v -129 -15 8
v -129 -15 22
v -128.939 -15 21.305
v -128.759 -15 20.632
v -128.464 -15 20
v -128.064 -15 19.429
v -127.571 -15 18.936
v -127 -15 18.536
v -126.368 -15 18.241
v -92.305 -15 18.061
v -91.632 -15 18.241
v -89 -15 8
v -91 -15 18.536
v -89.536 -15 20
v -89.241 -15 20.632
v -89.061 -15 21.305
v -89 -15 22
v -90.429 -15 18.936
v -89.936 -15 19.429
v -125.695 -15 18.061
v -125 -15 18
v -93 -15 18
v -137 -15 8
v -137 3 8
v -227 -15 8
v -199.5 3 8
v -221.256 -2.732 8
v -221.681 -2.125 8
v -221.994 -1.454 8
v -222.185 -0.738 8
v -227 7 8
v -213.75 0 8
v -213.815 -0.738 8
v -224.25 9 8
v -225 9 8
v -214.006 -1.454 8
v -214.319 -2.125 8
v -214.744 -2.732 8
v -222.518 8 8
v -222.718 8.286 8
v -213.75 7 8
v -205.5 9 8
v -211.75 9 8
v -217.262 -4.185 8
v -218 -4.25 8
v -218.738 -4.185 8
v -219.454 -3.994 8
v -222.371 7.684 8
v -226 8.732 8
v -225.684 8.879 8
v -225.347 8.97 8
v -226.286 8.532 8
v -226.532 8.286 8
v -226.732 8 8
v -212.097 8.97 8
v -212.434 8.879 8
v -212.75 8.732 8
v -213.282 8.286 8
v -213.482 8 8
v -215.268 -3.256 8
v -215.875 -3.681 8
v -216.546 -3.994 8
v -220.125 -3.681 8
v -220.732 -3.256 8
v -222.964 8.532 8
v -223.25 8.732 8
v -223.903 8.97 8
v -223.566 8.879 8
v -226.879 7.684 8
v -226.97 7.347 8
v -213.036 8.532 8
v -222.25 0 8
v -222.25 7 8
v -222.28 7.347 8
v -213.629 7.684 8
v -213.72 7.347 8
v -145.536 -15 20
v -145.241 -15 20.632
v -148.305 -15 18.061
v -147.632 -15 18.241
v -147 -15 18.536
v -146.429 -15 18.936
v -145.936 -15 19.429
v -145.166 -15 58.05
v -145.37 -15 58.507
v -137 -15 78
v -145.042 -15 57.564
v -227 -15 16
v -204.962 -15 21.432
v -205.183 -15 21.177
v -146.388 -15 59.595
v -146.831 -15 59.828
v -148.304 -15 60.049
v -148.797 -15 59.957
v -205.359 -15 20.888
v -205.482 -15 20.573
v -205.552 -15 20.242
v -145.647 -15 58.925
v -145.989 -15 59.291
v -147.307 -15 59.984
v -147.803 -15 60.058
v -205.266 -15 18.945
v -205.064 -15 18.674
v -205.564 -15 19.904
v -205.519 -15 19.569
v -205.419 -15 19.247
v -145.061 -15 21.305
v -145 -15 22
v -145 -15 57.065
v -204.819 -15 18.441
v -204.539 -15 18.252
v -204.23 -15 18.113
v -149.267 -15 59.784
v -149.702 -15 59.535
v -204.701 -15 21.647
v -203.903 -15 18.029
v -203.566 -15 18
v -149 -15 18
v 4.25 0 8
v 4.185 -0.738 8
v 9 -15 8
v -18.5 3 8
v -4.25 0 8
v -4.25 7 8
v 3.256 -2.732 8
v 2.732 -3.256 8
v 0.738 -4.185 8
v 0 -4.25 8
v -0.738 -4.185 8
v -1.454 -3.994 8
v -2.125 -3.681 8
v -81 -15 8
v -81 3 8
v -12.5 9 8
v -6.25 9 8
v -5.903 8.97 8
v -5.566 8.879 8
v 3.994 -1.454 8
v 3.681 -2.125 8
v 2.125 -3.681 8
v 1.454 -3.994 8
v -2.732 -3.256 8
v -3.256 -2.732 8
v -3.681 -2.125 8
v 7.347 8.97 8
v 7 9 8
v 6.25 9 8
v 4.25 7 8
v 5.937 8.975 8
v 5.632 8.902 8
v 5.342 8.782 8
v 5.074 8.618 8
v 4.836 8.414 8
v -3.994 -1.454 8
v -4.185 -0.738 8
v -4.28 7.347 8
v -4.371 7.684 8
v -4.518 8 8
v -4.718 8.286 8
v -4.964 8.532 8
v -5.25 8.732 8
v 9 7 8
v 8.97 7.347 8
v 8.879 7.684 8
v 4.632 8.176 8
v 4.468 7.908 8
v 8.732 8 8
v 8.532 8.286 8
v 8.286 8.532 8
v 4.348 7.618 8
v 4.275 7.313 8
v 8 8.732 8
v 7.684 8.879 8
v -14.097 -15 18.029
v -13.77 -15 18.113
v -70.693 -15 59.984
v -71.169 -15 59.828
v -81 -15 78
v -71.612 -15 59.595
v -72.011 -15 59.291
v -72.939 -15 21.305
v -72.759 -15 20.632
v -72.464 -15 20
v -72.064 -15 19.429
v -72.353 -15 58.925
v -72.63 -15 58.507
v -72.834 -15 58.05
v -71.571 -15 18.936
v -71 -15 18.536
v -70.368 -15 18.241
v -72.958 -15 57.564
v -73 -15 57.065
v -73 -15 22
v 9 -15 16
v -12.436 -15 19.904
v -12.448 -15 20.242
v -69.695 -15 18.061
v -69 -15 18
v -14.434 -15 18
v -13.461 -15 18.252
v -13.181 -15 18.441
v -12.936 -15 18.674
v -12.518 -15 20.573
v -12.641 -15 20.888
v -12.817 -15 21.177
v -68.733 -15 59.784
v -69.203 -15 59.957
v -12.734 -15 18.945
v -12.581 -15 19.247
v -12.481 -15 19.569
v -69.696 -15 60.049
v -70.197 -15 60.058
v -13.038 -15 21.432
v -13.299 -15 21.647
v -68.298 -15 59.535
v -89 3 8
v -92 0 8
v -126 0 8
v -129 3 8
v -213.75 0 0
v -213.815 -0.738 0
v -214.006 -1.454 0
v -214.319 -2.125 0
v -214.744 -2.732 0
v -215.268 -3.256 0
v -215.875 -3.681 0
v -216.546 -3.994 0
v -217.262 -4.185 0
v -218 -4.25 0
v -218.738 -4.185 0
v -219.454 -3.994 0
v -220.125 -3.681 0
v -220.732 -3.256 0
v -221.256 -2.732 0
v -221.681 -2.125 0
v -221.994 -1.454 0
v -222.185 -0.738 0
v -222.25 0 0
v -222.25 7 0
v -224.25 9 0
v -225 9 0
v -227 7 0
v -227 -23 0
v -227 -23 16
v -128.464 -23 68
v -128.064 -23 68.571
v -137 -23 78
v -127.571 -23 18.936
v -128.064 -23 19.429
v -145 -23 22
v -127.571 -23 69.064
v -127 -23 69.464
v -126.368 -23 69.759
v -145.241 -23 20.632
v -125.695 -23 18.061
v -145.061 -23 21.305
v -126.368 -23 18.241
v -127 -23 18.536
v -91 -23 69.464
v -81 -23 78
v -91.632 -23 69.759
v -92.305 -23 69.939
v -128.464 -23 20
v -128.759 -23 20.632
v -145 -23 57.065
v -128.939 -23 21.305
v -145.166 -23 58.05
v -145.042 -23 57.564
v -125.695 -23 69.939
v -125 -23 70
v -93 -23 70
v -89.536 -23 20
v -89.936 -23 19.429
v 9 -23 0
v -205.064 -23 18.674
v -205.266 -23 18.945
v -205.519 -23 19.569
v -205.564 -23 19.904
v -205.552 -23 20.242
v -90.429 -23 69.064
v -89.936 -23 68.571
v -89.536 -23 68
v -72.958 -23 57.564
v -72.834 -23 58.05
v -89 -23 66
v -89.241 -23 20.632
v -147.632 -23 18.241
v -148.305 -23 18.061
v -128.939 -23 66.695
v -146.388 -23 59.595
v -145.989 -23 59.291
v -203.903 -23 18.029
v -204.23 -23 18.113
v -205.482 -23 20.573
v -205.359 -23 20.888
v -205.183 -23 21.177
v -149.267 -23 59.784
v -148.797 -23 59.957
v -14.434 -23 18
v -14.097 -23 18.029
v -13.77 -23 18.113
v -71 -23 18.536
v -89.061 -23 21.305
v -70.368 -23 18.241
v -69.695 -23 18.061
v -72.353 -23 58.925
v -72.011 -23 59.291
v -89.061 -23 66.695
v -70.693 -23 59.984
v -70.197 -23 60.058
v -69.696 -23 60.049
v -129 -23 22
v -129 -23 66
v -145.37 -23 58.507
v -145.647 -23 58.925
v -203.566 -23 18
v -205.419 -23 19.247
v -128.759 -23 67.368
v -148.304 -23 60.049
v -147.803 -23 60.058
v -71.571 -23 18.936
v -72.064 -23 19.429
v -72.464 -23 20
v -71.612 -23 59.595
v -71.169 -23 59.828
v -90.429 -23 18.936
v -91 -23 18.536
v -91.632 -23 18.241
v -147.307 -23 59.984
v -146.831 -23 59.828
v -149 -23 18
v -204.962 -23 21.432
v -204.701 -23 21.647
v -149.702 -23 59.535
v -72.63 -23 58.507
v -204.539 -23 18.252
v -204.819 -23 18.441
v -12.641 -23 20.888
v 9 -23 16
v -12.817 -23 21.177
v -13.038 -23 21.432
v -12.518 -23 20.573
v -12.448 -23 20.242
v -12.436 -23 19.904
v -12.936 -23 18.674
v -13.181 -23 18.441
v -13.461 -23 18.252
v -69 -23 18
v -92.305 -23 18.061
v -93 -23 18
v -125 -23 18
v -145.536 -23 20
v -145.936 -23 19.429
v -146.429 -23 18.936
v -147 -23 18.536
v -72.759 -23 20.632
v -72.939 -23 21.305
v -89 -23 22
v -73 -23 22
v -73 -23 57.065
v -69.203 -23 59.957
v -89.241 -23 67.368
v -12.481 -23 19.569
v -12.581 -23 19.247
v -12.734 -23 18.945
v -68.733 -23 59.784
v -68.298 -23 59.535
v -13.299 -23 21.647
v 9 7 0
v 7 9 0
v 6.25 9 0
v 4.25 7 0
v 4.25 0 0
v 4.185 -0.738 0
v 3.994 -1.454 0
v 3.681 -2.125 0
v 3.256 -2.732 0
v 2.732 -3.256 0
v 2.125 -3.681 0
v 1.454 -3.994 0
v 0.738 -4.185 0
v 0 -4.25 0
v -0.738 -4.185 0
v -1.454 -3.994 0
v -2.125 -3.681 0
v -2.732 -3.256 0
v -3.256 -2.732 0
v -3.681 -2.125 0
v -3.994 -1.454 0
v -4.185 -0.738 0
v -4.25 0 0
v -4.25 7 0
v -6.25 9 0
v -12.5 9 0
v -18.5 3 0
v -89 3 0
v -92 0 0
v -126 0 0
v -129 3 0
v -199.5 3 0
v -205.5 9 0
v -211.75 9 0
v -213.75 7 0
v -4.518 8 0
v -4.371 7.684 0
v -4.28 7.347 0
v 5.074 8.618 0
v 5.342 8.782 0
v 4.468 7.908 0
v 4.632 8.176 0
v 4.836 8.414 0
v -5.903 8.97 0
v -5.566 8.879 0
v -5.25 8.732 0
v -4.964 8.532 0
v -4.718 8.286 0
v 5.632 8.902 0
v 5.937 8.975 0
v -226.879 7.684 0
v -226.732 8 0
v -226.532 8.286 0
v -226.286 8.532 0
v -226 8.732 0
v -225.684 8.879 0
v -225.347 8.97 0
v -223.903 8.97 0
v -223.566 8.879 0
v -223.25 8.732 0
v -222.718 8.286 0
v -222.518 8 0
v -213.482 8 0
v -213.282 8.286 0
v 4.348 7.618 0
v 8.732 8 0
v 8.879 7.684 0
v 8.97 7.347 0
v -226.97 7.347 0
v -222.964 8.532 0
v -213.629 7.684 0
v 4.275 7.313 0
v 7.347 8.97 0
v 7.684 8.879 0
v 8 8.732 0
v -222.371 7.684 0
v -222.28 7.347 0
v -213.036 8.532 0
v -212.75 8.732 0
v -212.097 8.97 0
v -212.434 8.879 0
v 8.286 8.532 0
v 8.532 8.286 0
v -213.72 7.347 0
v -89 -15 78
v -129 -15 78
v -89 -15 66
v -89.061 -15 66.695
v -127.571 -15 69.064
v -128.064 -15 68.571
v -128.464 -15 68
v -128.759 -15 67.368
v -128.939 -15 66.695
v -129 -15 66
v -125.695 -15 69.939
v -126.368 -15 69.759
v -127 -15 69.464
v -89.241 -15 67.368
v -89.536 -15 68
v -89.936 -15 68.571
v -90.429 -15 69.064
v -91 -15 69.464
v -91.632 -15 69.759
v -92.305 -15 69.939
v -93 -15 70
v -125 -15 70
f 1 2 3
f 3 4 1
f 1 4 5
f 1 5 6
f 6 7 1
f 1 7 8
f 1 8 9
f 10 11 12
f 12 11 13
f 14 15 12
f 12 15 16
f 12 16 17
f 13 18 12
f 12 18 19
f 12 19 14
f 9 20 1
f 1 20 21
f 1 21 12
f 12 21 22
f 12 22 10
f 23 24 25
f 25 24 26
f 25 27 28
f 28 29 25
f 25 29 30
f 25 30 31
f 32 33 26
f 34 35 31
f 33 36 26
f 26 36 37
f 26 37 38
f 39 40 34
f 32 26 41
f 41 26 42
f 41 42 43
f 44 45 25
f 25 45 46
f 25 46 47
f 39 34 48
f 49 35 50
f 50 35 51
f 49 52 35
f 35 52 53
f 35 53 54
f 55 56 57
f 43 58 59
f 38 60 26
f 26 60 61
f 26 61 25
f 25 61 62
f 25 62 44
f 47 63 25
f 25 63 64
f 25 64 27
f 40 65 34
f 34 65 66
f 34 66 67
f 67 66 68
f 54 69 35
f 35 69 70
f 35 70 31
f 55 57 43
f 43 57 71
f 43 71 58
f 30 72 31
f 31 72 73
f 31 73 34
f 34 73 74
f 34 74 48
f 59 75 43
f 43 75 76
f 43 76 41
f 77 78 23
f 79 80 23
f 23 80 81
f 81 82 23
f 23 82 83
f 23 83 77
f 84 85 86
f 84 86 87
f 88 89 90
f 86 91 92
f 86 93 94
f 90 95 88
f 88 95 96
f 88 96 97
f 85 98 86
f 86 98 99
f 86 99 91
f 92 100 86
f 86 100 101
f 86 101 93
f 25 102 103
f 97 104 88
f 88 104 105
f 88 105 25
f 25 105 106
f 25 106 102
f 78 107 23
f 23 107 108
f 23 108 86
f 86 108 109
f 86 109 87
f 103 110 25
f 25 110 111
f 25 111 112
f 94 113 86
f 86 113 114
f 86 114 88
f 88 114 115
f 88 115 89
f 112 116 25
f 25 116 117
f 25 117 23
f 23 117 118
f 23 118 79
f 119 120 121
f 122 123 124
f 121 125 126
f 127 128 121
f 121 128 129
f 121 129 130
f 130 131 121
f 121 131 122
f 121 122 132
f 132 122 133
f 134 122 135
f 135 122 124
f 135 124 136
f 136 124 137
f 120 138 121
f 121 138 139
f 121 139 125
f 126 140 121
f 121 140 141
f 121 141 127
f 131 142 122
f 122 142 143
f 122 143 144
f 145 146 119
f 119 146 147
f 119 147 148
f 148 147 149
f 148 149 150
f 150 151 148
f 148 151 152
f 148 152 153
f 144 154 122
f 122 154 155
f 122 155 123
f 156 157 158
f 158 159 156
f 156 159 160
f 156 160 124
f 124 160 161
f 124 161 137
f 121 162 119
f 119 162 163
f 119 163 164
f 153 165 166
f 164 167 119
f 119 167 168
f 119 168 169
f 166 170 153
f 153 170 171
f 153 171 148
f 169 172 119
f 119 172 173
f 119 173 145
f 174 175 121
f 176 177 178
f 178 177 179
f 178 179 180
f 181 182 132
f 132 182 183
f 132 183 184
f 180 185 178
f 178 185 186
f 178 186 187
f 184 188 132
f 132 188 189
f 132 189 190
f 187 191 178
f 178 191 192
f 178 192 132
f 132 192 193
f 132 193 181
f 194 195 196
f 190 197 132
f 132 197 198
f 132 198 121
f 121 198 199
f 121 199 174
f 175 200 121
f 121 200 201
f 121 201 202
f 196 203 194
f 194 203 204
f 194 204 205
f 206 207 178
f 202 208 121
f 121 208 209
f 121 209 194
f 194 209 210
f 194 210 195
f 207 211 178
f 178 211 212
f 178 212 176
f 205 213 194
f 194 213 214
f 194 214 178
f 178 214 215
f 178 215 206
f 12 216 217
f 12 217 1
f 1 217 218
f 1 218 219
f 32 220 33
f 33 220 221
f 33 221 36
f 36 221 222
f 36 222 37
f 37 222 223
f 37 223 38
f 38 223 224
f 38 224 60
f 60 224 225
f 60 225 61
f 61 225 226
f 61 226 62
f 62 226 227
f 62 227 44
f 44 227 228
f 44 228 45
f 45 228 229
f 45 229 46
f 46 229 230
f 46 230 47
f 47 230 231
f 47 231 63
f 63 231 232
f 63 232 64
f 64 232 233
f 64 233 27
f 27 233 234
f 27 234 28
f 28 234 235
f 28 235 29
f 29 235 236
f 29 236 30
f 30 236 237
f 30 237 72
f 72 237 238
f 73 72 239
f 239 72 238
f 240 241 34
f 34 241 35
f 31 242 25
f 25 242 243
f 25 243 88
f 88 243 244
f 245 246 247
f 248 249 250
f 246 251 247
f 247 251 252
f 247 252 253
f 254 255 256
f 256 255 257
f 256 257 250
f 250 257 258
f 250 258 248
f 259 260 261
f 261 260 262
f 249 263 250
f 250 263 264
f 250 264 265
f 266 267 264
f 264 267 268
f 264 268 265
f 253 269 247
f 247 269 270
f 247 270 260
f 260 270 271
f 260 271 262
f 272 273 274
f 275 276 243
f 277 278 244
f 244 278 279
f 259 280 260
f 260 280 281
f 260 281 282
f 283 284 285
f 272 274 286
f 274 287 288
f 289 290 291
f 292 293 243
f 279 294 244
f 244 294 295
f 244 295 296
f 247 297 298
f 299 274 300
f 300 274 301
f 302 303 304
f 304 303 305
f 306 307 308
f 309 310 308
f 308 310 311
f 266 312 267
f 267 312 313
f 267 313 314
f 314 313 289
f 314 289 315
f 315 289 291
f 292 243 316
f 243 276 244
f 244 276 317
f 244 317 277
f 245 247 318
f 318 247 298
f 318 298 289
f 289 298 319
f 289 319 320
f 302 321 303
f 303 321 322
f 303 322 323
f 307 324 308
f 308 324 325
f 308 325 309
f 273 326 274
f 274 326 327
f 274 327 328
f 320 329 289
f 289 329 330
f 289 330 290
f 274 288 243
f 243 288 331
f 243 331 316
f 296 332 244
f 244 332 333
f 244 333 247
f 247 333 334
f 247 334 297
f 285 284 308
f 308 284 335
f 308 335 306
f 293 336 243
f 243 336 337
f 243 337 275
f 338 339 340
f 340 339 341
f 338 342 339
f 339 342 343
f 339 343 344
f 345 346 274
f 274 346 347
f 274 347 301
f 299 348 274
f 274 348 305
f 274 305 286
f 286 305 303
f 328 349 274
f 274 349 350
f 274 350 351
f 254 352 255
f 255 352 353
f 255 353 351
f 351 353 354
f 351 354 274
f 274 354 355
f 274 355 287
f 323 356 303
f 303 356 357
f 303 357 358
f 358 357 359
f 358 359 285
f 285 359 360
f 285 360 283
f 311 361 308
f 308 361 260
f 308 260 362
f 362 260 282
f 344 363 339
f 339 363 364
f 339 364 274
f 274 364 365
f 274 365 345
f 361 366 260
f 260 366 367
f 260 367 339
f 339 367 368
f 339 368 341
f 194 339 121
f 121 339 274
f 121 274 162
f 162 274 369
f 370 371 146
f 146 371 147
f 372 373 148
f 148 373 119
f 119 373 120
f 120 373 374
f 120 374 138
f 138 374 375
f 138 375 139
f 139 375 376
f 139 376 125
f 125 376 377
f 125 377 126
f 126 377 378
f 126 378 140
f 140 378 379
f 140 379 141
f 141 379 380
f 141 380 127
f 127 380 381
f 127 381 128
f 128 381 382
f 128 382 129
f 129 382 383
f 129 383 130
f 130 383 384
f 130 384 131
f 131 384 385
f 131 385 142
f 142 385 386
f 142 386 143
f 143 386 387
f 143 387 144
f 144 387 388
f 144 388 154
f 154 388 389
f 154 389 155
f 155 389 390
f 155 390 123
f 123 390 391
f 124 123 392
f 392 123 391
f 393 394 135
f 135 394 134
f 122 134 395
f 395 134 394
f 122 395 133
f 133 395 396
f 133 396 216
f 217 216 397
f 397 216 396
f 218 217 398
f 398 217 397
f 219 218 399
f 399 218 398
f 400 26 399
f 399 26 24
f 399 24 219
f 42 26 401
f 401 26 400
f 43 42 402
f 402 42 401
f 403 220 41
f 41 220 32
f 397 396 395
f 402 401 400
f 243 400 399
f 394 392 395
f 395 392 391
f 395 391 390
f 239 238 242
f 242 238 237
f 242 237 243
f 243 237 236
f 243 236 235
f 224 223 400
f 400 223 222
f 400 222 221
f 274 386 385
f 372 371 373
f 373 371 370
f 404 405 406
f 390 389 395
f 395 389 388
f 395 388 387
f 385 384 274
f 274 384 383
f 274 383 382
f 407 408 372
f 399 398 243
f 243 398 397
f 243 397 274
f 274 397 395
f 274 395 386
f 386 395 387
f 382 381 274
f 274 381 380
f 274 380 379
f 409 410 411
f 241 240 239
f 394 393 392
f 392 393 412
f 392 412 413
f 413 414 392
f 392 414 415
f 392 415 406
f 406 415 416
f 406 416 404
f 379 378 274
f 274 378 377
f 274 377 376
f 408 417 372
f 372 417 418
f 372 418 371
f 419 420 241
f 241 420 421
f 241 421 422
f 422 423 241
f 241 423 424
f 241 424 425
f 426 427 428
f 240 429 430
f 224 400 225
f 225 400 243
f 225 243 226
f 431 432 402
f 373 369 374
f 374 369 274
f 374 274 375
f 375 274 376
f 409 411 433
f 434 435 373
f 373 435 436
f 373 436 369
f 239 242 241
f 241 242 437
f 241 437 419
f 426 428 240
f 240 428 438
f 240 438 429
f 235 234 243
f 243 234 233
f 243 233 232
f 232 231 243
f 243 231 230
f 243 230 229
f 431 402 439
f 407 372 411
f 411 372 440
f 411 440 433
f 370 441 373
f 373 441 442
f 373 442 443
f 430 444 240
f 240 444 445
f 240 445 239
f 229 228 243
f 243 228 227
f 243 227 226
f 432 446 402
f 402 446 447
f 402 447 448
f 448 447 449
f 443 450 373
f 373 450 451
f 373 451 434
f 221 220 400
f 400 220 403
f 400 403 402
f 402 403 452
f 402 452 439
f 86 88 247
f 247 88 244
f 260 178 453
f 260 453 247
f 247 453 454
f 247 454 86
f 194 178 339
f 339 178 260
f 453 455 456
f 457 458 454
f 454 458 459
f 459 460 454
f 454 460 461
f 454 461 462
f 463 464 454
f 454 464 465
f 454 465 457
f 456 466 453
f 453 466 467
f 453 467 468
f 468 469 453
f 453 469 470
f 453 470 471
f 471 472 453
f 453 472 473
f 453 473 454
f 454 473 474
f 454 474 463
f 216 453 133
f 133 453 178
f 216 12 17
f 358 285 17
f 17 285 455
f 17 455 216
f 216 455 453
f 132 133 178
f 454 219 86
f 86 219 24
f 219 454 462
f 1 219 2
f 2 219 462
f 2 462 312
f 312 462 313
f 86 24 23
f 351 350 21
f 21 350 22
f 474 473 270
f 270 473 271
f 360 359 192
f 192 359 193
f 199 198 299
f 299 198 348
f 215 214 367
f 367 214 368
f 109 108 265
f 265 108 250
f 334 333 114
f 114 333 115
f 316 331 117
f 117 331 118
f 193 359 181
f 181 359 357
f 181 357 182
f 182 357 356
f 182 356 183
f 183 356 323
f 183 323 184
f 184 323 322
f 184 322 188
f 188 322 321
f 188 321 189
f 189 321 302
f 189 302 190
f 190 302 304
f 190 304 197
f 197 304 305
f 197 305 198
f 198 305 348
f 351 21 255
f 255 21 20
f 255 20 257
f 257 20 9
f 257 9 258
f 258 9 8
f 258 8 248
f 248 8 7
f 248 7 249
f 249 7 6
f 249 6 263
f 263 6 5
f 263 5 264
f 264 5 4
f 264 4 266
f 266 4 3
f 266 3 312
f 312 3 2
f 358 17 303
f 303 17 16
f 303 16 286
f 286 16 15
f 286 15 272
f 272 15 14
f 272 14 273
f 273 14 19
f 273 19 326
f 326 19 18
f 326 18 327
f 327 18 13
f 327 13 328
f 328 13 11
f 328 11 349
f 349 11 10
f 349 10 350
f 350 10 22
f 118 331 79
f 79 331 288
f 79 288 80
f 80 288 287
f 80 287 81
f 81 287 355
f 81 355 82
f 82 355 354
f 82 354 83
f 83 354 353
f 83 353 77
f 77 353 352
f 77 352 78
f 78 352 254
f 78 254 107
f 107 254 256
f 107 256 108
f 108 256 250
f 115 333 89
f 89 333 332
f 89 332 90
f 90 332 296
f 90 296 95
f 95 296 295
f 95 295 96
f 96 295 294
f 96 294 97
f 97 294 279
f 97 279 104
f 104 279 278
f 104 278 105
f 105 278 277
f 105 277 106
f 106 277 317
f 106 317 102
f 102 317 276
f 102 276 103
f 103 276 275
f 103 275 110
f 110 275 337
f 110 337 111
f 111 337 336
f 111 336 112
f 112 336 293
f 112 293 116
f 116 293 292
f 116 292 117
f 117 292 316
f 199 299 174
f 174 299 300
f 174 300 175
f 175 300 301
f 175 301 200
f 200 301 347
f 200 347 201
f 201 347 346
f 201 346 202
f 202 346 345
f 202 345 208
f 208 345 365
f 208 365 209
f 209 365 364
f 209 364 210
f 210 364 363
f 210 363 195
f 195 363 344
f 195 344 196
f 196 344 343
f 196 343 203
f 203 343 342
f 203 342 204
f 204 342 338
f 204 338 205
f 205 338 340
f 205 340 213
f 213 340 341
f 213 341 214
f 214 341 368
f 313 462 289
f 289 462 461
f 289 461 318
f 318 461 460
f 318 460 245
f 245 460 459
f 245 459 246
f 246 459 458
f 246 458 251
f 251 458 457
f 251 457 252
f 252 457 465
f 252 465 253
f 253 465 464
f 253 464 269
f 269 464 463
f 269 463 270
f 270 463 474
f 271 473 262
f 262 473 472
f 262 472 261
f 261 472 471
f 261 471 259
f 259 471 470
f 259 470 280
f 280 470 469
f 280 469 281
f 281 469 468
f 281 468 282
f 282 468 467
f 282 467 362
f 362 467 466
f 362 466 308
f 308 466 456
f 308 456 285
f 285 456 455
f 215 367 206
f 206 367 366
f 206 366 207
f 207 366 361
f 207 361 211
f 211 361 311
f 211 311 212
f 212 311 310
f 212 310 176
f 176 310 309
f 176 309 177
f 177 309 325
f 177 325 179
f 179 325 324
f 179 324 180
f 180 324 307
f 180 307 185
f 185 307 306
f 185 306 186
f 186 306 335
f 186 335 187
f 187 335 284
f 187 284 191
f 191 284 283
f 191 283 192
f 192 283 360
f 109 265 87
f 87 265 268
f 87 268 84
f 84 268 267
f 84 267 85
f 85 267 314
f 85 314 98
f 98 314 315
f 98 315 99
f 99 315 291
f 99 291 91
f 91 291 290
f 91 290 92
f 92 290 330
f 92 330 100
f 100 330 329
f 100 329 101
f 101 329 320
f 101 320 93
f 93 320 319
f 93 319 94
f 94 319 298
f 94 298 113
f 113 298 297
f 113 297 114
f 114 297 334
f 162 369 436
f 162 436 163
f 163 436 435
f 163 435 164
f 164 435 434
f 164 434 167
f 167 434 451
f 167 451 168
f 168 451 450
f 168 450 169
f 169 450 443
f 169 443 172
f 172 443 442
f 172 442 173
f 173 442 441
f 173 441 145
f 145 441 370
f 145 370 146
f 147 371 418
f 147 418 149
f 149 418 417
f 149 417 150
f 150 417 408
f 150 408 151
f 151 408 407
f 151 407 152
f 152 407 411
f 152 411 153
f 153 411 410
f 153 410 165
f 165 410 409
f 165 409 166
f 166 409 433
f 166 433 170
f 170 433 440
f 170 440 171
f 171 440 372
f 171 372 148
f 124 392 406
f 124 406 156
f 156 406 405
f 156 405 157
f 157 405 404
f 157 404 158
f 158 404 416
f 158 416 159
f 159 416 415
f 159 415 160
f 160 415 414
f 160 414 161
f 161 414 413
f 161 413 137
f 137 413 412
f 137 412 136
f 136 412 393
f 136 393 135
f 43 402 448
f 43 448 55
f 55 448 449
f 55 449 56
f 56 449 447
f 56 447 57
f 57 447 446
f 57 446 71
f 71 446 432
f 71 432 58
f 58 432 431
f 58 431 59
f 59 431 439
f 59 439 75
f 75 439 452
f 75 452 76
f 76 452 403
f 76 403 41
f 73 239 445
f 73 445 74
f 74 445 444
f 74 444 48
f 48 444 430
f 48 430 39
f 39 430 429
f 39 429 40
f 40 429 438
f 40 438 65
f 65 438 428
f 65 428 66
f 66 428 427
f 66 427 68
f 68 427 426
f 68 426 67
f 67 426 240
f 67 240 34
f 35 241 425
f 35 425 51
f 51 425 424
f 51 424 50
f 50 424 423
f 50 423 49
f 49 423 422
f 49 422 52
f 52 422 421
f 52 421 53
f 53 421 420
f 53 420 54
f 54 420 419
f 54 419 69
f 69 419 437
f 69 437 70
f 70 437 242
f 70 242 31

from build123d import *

# Parameters (mm, degrees)
BOSS_EXTRUDE1_DEPTH = 8
BOSS_EXTRUDE2_DEPTH = 8
BOSS_EXTRUDE3_DEPTH = 8
BOSS_EXTRUDE4_DEPTH = 8
SKETCH6_W           = 40
SKETCH6_H           = 52
CUT_EXTRUDE1_DEPTH  = 9
CUT_EXTRUDE2_DEPTH  = 9
FILLET1_R           = 4
FILLET2_R           = 2
FILLET3_R           = 4
FILLET4_R           = 3
FILLET5_R           = 2


with BuildPart() as part:
    # Sketch1 → Boss-Extrude1 (new body)
    with BuildSketch(Plane.XY):
        with BuildLine():
            Line((4.25, 9), (4.25, 0))
            ThreePointArc((4.25, 0), (0, -4.25), (-4.25, 0))
            Line((-4.25, 0), (-4.25, 9))
            Line((-4.25, 9), (-12.5, 9))
            Line((-12.5, 9), (-18.5, 3))
            Line((-18.5, 3), (-89, 3))
            Line((-89, 3), (-92, 0))
            Line((-92, 0), (-126, 0))
            Line((-126, 0), (-129, 3))
            Line((-129, 3), (-199.5, 3))
            Line((-199.5, 3), (-205.5, 9))
            Line((-205.5, 9), (-213.75, 9))
            Line((-213.75, 9), (-213.75, 0))
            ThreePointArc((-213.75, 0), (-218, -4.25), (-222.25, 0))
            Line((-222.25, 0), (-222.25, 9))
            Line((-222.25, 9), (-227, 9))
            Line((-227, 9), (-227, -23))
            Line((-227, -23), (9, -23))
            Line((9, -23), (9, 9))
            Line((9, 9), (4.25, 9))
        make_face()
    extrude(amount=BOSS_EXTRUDE1_DEPTH)

    # Sketch2 → Boss-Extrude2 (add)
    with BuildSketch(Plane.XZ.offset(23)):
        Polygon((-227, 8), (-227, 16), (-137, 78), (-81, 78), (9, 16), (9, 8), align=None)
    extrude(amount=-BOSS_EXTRUDE2_DEPTH)

    # Sketch4 → Boss-Extrude3 (add)
    with BuildSketch(Plane(origin=(-81, 0, 0), x_dir=(0, 0, -1), z_dir=(1, 0, 0))):
        Polygon((-78, -15), (-8, 3), (-8, 0), (-8, -15), align=None)
    extrude(amount=-BOSS_EXTRUDE3_DEPTH)

    # Sketch5 → Boss-Extrude4 (add)
    with BuildSketch(Plane(origin=(-137, 0, 0), x_dir=(0, 0, -1), z_dir=(1, 0, 0))):
        Polygon((-8, 3), (-78, -15), (-8, -15), (-8, 0), align=None)
    extrude(amount=BOSS_EXTRUDE4_DEPTH)

    # Sketch6 → Cut-Extrude1 (cut, through all)
    with BuildSketch(Plane(origin=(0, -15, 0), x_dir=(1, 0, 0), z_dir=(0, 1, 0))):
        with Locations((-109, -44)):
            Rectangle(SKETCH6_W, SKETCH6_H)
    extrude(amount=-CUT_EXTRUDE1_DEPTH, mode=Mode.SUBTRACT)

    # Sketch7 → Cut-Extrude2 (cut, through all)
    with BuildSketch(Plane(origin=(0, -15, 0), x_dir=(1, 0, 0), z_dir=(0, 1, 0))):
        Polygon((-73, -18), (-8.004981773, -18), (-73, -62.77434589), align=None)
        Polygon((-145, -18), (-209.995018227, -18), (-145, -62.77434589), align=None)
    extrude(amount=-CUT_EXTRUDE2_DEPTH, mode=Mode.SUBTRACT)

    # Fillet1
    fillet1_edges = [part.edges().sort_by_distance(p)[0] for p in [
        (-129, -19, 18),
        (-89, -19, 18),
        (-73, -19, 18),
        (-145, -19, 18),
    ]]
    fillet(fillet1_edges, radius=FILLET1_R)

    # Fillet2
    fillet2_edges = [part.edges().sort_by_distance(p)[0] for p in [
        (-8.004981773, -19, 18),
        (-209.995018227, -19, 18),
    ]]
    fillet(fillet2_edges, radius=FILLET2_R)

    # Fillet3
    fillet3_edges = [part.edges().sort_by_distance(p)[0] for p in [
        (-129, -19, 70),
        (-89, -19, 70),
    ]]
    fillet(fillet3_edges, radius=FILLET3_R)

    # Fillet4
    fillet4_edges = [part.edges().sort_by_distance(p)[0] for p in [
        (-73, -19, 62.77434589),
        (-145, -19, 62.77434589),
    ]]
    fillet(fillet4_edges, radius=FILLET4_R)

    # Fillet5
    fillet5_edges = [part.edges().sort_by_distance(p)[0] for p in [
        (9, 9, 4),
        (4.25, 9, 4),
        (-4.25, 9, 4),
        (-213.75, 9, 4),
        (-222.25, 9, 4),
        (-227, 9, 4),
    ]]
    fillet(fillet5_edges, radius=FILLET5_R)


solid = part.part
